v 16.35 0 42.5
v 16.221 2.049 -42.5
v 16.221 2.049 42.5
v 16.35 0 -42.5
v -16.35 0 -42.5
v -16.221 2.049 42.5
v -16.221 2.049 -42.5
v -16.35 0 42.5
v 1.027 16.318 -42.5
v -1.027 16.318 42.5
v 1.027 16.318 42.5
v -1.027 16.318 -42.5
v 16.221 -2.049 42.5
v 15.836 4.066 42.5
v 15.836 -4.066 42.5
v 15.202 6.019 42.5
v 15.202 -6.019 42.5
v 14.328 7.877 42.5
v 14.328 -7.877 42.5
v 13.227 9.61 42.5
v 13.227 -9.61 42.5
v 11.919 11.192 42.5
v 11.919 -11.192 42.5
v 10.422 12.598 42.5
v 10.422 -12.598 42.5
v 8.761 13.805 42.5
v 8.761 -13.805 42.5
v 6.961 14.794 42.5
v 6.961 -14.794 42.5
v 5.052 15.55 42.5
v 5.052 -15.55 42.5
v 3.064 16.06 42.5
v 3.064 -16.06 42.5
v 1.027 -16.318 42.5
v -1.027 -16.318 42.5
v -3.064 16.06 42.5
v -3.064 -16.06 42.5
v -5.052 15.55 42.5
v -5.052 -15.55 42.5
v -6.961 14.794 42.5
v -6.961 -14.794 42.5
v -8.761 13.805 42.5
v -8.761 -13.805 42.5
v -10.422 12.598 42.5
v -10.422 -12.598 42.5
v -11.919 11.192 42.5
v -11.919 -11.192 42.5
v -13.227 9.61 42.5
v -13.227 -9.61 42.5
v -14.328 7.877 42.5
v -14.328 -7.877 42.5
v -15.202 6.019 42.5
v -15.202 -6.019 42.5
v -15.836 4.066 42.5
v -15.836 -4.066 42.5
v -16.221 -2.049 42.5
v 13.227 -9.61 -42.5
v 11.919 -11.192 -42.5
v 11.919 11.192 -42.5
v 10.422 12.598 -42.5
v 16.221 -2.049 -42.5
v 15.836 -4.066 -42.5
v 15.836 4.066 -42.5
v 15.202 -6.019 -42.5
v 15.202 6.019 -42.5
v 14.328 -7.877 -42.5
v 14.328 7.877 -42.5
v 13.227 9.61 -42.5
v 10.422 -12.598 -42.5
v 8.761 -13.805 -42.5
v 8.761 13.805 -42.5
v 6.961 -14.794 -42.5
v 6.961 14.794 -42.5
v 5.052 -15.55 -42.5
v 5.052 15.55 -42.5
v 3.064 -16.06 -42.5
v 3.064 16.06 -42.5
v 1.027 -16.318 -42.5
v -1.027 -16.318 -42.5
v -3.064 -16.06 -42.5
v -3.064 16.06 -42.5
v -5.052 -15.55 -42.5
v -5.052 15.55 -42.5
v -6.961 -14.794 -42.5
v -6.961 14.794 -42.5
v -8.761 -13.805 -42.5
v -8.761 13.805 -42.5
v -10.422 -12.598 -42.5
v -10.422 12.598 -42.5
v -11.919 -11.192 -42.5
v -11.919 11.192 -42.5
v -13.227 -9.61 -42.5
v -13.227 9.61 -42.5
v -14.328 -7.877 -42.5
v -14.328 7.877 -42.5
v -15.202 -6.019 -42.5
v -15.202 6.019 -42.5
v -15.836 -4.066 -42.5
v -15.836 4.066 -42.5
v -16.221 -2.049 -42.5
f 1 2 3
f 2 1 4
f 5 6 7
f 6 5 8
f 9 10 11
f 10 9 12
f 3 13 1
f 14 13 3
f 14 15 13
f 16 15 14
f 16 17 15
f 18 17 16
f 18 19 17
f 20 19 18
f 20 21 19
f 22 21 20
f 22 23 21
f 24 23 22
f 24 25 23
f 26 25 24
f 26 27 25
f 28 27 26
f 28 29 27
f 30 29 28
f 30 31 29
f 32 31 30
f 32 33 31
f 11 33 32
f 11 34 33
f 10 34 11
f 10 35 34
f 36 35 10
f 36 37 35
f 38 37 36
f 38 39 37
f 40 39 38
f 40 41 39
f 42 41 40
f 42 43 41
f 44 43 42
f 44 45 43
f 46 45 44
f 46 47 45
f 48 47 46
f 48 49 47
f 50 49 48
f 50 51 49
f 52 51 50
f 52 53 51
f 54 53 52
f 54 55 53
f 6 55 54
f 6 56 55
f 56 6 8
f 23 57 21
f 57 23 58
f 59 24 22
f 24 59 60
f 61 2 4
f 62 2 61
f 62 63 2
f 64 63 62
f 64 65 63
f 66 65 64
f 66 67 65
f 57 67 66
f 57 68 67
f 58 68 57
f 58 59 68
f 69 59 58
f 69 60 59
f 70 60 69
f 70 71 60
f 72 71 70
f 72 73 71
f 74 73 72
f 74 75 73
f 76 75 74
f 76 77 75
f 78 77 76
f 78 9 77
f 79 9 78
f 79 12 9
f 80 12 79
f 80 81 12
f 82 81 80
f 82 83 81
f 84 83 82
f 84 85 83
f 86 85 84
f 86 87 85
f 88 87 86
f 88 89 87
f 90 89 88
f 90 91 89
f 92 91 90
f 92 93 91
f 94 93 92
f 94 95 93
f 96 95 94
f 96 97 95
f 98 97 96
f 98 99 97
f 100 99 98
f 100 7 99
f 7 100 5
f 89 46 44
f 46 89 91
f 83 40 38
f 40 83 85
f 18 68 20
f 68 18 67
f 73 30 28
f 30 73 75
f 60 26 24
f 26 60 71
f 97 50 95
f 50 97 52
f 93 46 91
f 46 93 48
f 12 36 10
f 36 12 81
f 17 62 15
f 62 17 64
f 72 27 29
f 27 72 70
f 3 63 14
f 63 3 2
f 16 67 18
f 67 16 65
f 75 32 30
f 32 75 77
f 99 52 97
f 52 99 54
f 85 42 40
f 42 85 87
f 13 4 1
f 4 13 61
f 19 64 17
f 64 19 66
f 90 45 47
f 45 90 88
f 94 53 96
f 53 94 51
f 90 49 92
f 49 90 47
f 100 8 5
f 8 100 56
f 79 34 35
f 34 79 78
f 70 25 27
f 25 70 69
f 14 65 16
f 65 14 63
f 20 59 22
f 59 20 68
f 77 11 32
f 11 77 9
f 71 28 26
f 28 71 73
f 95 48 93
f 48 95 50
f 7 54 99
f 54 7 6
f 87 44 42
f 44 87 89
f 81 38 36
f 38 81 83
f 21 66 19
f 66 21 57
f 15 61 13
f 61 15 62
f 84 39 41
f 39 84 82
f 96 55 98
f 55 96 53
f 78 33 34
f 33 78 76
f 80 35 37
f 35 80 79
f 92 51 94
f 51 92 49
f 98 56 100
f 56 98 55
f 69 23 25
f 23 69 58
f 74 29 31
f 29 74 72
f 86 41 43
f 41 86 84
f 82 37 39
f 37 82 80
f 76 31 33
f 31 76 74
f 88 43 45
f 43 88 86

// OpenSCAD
$fn = 50;


difference() {
	union() {
		translate(v = [0, 0, -42.5000000000]) {
			cylinder(h = 85, r = 16.3500000000);
		}
	}
	union() {
		translate(v = [0, 0, -100.0000000000]) {
			cylinder(h = 200, r = 0);
		}
	}
}
